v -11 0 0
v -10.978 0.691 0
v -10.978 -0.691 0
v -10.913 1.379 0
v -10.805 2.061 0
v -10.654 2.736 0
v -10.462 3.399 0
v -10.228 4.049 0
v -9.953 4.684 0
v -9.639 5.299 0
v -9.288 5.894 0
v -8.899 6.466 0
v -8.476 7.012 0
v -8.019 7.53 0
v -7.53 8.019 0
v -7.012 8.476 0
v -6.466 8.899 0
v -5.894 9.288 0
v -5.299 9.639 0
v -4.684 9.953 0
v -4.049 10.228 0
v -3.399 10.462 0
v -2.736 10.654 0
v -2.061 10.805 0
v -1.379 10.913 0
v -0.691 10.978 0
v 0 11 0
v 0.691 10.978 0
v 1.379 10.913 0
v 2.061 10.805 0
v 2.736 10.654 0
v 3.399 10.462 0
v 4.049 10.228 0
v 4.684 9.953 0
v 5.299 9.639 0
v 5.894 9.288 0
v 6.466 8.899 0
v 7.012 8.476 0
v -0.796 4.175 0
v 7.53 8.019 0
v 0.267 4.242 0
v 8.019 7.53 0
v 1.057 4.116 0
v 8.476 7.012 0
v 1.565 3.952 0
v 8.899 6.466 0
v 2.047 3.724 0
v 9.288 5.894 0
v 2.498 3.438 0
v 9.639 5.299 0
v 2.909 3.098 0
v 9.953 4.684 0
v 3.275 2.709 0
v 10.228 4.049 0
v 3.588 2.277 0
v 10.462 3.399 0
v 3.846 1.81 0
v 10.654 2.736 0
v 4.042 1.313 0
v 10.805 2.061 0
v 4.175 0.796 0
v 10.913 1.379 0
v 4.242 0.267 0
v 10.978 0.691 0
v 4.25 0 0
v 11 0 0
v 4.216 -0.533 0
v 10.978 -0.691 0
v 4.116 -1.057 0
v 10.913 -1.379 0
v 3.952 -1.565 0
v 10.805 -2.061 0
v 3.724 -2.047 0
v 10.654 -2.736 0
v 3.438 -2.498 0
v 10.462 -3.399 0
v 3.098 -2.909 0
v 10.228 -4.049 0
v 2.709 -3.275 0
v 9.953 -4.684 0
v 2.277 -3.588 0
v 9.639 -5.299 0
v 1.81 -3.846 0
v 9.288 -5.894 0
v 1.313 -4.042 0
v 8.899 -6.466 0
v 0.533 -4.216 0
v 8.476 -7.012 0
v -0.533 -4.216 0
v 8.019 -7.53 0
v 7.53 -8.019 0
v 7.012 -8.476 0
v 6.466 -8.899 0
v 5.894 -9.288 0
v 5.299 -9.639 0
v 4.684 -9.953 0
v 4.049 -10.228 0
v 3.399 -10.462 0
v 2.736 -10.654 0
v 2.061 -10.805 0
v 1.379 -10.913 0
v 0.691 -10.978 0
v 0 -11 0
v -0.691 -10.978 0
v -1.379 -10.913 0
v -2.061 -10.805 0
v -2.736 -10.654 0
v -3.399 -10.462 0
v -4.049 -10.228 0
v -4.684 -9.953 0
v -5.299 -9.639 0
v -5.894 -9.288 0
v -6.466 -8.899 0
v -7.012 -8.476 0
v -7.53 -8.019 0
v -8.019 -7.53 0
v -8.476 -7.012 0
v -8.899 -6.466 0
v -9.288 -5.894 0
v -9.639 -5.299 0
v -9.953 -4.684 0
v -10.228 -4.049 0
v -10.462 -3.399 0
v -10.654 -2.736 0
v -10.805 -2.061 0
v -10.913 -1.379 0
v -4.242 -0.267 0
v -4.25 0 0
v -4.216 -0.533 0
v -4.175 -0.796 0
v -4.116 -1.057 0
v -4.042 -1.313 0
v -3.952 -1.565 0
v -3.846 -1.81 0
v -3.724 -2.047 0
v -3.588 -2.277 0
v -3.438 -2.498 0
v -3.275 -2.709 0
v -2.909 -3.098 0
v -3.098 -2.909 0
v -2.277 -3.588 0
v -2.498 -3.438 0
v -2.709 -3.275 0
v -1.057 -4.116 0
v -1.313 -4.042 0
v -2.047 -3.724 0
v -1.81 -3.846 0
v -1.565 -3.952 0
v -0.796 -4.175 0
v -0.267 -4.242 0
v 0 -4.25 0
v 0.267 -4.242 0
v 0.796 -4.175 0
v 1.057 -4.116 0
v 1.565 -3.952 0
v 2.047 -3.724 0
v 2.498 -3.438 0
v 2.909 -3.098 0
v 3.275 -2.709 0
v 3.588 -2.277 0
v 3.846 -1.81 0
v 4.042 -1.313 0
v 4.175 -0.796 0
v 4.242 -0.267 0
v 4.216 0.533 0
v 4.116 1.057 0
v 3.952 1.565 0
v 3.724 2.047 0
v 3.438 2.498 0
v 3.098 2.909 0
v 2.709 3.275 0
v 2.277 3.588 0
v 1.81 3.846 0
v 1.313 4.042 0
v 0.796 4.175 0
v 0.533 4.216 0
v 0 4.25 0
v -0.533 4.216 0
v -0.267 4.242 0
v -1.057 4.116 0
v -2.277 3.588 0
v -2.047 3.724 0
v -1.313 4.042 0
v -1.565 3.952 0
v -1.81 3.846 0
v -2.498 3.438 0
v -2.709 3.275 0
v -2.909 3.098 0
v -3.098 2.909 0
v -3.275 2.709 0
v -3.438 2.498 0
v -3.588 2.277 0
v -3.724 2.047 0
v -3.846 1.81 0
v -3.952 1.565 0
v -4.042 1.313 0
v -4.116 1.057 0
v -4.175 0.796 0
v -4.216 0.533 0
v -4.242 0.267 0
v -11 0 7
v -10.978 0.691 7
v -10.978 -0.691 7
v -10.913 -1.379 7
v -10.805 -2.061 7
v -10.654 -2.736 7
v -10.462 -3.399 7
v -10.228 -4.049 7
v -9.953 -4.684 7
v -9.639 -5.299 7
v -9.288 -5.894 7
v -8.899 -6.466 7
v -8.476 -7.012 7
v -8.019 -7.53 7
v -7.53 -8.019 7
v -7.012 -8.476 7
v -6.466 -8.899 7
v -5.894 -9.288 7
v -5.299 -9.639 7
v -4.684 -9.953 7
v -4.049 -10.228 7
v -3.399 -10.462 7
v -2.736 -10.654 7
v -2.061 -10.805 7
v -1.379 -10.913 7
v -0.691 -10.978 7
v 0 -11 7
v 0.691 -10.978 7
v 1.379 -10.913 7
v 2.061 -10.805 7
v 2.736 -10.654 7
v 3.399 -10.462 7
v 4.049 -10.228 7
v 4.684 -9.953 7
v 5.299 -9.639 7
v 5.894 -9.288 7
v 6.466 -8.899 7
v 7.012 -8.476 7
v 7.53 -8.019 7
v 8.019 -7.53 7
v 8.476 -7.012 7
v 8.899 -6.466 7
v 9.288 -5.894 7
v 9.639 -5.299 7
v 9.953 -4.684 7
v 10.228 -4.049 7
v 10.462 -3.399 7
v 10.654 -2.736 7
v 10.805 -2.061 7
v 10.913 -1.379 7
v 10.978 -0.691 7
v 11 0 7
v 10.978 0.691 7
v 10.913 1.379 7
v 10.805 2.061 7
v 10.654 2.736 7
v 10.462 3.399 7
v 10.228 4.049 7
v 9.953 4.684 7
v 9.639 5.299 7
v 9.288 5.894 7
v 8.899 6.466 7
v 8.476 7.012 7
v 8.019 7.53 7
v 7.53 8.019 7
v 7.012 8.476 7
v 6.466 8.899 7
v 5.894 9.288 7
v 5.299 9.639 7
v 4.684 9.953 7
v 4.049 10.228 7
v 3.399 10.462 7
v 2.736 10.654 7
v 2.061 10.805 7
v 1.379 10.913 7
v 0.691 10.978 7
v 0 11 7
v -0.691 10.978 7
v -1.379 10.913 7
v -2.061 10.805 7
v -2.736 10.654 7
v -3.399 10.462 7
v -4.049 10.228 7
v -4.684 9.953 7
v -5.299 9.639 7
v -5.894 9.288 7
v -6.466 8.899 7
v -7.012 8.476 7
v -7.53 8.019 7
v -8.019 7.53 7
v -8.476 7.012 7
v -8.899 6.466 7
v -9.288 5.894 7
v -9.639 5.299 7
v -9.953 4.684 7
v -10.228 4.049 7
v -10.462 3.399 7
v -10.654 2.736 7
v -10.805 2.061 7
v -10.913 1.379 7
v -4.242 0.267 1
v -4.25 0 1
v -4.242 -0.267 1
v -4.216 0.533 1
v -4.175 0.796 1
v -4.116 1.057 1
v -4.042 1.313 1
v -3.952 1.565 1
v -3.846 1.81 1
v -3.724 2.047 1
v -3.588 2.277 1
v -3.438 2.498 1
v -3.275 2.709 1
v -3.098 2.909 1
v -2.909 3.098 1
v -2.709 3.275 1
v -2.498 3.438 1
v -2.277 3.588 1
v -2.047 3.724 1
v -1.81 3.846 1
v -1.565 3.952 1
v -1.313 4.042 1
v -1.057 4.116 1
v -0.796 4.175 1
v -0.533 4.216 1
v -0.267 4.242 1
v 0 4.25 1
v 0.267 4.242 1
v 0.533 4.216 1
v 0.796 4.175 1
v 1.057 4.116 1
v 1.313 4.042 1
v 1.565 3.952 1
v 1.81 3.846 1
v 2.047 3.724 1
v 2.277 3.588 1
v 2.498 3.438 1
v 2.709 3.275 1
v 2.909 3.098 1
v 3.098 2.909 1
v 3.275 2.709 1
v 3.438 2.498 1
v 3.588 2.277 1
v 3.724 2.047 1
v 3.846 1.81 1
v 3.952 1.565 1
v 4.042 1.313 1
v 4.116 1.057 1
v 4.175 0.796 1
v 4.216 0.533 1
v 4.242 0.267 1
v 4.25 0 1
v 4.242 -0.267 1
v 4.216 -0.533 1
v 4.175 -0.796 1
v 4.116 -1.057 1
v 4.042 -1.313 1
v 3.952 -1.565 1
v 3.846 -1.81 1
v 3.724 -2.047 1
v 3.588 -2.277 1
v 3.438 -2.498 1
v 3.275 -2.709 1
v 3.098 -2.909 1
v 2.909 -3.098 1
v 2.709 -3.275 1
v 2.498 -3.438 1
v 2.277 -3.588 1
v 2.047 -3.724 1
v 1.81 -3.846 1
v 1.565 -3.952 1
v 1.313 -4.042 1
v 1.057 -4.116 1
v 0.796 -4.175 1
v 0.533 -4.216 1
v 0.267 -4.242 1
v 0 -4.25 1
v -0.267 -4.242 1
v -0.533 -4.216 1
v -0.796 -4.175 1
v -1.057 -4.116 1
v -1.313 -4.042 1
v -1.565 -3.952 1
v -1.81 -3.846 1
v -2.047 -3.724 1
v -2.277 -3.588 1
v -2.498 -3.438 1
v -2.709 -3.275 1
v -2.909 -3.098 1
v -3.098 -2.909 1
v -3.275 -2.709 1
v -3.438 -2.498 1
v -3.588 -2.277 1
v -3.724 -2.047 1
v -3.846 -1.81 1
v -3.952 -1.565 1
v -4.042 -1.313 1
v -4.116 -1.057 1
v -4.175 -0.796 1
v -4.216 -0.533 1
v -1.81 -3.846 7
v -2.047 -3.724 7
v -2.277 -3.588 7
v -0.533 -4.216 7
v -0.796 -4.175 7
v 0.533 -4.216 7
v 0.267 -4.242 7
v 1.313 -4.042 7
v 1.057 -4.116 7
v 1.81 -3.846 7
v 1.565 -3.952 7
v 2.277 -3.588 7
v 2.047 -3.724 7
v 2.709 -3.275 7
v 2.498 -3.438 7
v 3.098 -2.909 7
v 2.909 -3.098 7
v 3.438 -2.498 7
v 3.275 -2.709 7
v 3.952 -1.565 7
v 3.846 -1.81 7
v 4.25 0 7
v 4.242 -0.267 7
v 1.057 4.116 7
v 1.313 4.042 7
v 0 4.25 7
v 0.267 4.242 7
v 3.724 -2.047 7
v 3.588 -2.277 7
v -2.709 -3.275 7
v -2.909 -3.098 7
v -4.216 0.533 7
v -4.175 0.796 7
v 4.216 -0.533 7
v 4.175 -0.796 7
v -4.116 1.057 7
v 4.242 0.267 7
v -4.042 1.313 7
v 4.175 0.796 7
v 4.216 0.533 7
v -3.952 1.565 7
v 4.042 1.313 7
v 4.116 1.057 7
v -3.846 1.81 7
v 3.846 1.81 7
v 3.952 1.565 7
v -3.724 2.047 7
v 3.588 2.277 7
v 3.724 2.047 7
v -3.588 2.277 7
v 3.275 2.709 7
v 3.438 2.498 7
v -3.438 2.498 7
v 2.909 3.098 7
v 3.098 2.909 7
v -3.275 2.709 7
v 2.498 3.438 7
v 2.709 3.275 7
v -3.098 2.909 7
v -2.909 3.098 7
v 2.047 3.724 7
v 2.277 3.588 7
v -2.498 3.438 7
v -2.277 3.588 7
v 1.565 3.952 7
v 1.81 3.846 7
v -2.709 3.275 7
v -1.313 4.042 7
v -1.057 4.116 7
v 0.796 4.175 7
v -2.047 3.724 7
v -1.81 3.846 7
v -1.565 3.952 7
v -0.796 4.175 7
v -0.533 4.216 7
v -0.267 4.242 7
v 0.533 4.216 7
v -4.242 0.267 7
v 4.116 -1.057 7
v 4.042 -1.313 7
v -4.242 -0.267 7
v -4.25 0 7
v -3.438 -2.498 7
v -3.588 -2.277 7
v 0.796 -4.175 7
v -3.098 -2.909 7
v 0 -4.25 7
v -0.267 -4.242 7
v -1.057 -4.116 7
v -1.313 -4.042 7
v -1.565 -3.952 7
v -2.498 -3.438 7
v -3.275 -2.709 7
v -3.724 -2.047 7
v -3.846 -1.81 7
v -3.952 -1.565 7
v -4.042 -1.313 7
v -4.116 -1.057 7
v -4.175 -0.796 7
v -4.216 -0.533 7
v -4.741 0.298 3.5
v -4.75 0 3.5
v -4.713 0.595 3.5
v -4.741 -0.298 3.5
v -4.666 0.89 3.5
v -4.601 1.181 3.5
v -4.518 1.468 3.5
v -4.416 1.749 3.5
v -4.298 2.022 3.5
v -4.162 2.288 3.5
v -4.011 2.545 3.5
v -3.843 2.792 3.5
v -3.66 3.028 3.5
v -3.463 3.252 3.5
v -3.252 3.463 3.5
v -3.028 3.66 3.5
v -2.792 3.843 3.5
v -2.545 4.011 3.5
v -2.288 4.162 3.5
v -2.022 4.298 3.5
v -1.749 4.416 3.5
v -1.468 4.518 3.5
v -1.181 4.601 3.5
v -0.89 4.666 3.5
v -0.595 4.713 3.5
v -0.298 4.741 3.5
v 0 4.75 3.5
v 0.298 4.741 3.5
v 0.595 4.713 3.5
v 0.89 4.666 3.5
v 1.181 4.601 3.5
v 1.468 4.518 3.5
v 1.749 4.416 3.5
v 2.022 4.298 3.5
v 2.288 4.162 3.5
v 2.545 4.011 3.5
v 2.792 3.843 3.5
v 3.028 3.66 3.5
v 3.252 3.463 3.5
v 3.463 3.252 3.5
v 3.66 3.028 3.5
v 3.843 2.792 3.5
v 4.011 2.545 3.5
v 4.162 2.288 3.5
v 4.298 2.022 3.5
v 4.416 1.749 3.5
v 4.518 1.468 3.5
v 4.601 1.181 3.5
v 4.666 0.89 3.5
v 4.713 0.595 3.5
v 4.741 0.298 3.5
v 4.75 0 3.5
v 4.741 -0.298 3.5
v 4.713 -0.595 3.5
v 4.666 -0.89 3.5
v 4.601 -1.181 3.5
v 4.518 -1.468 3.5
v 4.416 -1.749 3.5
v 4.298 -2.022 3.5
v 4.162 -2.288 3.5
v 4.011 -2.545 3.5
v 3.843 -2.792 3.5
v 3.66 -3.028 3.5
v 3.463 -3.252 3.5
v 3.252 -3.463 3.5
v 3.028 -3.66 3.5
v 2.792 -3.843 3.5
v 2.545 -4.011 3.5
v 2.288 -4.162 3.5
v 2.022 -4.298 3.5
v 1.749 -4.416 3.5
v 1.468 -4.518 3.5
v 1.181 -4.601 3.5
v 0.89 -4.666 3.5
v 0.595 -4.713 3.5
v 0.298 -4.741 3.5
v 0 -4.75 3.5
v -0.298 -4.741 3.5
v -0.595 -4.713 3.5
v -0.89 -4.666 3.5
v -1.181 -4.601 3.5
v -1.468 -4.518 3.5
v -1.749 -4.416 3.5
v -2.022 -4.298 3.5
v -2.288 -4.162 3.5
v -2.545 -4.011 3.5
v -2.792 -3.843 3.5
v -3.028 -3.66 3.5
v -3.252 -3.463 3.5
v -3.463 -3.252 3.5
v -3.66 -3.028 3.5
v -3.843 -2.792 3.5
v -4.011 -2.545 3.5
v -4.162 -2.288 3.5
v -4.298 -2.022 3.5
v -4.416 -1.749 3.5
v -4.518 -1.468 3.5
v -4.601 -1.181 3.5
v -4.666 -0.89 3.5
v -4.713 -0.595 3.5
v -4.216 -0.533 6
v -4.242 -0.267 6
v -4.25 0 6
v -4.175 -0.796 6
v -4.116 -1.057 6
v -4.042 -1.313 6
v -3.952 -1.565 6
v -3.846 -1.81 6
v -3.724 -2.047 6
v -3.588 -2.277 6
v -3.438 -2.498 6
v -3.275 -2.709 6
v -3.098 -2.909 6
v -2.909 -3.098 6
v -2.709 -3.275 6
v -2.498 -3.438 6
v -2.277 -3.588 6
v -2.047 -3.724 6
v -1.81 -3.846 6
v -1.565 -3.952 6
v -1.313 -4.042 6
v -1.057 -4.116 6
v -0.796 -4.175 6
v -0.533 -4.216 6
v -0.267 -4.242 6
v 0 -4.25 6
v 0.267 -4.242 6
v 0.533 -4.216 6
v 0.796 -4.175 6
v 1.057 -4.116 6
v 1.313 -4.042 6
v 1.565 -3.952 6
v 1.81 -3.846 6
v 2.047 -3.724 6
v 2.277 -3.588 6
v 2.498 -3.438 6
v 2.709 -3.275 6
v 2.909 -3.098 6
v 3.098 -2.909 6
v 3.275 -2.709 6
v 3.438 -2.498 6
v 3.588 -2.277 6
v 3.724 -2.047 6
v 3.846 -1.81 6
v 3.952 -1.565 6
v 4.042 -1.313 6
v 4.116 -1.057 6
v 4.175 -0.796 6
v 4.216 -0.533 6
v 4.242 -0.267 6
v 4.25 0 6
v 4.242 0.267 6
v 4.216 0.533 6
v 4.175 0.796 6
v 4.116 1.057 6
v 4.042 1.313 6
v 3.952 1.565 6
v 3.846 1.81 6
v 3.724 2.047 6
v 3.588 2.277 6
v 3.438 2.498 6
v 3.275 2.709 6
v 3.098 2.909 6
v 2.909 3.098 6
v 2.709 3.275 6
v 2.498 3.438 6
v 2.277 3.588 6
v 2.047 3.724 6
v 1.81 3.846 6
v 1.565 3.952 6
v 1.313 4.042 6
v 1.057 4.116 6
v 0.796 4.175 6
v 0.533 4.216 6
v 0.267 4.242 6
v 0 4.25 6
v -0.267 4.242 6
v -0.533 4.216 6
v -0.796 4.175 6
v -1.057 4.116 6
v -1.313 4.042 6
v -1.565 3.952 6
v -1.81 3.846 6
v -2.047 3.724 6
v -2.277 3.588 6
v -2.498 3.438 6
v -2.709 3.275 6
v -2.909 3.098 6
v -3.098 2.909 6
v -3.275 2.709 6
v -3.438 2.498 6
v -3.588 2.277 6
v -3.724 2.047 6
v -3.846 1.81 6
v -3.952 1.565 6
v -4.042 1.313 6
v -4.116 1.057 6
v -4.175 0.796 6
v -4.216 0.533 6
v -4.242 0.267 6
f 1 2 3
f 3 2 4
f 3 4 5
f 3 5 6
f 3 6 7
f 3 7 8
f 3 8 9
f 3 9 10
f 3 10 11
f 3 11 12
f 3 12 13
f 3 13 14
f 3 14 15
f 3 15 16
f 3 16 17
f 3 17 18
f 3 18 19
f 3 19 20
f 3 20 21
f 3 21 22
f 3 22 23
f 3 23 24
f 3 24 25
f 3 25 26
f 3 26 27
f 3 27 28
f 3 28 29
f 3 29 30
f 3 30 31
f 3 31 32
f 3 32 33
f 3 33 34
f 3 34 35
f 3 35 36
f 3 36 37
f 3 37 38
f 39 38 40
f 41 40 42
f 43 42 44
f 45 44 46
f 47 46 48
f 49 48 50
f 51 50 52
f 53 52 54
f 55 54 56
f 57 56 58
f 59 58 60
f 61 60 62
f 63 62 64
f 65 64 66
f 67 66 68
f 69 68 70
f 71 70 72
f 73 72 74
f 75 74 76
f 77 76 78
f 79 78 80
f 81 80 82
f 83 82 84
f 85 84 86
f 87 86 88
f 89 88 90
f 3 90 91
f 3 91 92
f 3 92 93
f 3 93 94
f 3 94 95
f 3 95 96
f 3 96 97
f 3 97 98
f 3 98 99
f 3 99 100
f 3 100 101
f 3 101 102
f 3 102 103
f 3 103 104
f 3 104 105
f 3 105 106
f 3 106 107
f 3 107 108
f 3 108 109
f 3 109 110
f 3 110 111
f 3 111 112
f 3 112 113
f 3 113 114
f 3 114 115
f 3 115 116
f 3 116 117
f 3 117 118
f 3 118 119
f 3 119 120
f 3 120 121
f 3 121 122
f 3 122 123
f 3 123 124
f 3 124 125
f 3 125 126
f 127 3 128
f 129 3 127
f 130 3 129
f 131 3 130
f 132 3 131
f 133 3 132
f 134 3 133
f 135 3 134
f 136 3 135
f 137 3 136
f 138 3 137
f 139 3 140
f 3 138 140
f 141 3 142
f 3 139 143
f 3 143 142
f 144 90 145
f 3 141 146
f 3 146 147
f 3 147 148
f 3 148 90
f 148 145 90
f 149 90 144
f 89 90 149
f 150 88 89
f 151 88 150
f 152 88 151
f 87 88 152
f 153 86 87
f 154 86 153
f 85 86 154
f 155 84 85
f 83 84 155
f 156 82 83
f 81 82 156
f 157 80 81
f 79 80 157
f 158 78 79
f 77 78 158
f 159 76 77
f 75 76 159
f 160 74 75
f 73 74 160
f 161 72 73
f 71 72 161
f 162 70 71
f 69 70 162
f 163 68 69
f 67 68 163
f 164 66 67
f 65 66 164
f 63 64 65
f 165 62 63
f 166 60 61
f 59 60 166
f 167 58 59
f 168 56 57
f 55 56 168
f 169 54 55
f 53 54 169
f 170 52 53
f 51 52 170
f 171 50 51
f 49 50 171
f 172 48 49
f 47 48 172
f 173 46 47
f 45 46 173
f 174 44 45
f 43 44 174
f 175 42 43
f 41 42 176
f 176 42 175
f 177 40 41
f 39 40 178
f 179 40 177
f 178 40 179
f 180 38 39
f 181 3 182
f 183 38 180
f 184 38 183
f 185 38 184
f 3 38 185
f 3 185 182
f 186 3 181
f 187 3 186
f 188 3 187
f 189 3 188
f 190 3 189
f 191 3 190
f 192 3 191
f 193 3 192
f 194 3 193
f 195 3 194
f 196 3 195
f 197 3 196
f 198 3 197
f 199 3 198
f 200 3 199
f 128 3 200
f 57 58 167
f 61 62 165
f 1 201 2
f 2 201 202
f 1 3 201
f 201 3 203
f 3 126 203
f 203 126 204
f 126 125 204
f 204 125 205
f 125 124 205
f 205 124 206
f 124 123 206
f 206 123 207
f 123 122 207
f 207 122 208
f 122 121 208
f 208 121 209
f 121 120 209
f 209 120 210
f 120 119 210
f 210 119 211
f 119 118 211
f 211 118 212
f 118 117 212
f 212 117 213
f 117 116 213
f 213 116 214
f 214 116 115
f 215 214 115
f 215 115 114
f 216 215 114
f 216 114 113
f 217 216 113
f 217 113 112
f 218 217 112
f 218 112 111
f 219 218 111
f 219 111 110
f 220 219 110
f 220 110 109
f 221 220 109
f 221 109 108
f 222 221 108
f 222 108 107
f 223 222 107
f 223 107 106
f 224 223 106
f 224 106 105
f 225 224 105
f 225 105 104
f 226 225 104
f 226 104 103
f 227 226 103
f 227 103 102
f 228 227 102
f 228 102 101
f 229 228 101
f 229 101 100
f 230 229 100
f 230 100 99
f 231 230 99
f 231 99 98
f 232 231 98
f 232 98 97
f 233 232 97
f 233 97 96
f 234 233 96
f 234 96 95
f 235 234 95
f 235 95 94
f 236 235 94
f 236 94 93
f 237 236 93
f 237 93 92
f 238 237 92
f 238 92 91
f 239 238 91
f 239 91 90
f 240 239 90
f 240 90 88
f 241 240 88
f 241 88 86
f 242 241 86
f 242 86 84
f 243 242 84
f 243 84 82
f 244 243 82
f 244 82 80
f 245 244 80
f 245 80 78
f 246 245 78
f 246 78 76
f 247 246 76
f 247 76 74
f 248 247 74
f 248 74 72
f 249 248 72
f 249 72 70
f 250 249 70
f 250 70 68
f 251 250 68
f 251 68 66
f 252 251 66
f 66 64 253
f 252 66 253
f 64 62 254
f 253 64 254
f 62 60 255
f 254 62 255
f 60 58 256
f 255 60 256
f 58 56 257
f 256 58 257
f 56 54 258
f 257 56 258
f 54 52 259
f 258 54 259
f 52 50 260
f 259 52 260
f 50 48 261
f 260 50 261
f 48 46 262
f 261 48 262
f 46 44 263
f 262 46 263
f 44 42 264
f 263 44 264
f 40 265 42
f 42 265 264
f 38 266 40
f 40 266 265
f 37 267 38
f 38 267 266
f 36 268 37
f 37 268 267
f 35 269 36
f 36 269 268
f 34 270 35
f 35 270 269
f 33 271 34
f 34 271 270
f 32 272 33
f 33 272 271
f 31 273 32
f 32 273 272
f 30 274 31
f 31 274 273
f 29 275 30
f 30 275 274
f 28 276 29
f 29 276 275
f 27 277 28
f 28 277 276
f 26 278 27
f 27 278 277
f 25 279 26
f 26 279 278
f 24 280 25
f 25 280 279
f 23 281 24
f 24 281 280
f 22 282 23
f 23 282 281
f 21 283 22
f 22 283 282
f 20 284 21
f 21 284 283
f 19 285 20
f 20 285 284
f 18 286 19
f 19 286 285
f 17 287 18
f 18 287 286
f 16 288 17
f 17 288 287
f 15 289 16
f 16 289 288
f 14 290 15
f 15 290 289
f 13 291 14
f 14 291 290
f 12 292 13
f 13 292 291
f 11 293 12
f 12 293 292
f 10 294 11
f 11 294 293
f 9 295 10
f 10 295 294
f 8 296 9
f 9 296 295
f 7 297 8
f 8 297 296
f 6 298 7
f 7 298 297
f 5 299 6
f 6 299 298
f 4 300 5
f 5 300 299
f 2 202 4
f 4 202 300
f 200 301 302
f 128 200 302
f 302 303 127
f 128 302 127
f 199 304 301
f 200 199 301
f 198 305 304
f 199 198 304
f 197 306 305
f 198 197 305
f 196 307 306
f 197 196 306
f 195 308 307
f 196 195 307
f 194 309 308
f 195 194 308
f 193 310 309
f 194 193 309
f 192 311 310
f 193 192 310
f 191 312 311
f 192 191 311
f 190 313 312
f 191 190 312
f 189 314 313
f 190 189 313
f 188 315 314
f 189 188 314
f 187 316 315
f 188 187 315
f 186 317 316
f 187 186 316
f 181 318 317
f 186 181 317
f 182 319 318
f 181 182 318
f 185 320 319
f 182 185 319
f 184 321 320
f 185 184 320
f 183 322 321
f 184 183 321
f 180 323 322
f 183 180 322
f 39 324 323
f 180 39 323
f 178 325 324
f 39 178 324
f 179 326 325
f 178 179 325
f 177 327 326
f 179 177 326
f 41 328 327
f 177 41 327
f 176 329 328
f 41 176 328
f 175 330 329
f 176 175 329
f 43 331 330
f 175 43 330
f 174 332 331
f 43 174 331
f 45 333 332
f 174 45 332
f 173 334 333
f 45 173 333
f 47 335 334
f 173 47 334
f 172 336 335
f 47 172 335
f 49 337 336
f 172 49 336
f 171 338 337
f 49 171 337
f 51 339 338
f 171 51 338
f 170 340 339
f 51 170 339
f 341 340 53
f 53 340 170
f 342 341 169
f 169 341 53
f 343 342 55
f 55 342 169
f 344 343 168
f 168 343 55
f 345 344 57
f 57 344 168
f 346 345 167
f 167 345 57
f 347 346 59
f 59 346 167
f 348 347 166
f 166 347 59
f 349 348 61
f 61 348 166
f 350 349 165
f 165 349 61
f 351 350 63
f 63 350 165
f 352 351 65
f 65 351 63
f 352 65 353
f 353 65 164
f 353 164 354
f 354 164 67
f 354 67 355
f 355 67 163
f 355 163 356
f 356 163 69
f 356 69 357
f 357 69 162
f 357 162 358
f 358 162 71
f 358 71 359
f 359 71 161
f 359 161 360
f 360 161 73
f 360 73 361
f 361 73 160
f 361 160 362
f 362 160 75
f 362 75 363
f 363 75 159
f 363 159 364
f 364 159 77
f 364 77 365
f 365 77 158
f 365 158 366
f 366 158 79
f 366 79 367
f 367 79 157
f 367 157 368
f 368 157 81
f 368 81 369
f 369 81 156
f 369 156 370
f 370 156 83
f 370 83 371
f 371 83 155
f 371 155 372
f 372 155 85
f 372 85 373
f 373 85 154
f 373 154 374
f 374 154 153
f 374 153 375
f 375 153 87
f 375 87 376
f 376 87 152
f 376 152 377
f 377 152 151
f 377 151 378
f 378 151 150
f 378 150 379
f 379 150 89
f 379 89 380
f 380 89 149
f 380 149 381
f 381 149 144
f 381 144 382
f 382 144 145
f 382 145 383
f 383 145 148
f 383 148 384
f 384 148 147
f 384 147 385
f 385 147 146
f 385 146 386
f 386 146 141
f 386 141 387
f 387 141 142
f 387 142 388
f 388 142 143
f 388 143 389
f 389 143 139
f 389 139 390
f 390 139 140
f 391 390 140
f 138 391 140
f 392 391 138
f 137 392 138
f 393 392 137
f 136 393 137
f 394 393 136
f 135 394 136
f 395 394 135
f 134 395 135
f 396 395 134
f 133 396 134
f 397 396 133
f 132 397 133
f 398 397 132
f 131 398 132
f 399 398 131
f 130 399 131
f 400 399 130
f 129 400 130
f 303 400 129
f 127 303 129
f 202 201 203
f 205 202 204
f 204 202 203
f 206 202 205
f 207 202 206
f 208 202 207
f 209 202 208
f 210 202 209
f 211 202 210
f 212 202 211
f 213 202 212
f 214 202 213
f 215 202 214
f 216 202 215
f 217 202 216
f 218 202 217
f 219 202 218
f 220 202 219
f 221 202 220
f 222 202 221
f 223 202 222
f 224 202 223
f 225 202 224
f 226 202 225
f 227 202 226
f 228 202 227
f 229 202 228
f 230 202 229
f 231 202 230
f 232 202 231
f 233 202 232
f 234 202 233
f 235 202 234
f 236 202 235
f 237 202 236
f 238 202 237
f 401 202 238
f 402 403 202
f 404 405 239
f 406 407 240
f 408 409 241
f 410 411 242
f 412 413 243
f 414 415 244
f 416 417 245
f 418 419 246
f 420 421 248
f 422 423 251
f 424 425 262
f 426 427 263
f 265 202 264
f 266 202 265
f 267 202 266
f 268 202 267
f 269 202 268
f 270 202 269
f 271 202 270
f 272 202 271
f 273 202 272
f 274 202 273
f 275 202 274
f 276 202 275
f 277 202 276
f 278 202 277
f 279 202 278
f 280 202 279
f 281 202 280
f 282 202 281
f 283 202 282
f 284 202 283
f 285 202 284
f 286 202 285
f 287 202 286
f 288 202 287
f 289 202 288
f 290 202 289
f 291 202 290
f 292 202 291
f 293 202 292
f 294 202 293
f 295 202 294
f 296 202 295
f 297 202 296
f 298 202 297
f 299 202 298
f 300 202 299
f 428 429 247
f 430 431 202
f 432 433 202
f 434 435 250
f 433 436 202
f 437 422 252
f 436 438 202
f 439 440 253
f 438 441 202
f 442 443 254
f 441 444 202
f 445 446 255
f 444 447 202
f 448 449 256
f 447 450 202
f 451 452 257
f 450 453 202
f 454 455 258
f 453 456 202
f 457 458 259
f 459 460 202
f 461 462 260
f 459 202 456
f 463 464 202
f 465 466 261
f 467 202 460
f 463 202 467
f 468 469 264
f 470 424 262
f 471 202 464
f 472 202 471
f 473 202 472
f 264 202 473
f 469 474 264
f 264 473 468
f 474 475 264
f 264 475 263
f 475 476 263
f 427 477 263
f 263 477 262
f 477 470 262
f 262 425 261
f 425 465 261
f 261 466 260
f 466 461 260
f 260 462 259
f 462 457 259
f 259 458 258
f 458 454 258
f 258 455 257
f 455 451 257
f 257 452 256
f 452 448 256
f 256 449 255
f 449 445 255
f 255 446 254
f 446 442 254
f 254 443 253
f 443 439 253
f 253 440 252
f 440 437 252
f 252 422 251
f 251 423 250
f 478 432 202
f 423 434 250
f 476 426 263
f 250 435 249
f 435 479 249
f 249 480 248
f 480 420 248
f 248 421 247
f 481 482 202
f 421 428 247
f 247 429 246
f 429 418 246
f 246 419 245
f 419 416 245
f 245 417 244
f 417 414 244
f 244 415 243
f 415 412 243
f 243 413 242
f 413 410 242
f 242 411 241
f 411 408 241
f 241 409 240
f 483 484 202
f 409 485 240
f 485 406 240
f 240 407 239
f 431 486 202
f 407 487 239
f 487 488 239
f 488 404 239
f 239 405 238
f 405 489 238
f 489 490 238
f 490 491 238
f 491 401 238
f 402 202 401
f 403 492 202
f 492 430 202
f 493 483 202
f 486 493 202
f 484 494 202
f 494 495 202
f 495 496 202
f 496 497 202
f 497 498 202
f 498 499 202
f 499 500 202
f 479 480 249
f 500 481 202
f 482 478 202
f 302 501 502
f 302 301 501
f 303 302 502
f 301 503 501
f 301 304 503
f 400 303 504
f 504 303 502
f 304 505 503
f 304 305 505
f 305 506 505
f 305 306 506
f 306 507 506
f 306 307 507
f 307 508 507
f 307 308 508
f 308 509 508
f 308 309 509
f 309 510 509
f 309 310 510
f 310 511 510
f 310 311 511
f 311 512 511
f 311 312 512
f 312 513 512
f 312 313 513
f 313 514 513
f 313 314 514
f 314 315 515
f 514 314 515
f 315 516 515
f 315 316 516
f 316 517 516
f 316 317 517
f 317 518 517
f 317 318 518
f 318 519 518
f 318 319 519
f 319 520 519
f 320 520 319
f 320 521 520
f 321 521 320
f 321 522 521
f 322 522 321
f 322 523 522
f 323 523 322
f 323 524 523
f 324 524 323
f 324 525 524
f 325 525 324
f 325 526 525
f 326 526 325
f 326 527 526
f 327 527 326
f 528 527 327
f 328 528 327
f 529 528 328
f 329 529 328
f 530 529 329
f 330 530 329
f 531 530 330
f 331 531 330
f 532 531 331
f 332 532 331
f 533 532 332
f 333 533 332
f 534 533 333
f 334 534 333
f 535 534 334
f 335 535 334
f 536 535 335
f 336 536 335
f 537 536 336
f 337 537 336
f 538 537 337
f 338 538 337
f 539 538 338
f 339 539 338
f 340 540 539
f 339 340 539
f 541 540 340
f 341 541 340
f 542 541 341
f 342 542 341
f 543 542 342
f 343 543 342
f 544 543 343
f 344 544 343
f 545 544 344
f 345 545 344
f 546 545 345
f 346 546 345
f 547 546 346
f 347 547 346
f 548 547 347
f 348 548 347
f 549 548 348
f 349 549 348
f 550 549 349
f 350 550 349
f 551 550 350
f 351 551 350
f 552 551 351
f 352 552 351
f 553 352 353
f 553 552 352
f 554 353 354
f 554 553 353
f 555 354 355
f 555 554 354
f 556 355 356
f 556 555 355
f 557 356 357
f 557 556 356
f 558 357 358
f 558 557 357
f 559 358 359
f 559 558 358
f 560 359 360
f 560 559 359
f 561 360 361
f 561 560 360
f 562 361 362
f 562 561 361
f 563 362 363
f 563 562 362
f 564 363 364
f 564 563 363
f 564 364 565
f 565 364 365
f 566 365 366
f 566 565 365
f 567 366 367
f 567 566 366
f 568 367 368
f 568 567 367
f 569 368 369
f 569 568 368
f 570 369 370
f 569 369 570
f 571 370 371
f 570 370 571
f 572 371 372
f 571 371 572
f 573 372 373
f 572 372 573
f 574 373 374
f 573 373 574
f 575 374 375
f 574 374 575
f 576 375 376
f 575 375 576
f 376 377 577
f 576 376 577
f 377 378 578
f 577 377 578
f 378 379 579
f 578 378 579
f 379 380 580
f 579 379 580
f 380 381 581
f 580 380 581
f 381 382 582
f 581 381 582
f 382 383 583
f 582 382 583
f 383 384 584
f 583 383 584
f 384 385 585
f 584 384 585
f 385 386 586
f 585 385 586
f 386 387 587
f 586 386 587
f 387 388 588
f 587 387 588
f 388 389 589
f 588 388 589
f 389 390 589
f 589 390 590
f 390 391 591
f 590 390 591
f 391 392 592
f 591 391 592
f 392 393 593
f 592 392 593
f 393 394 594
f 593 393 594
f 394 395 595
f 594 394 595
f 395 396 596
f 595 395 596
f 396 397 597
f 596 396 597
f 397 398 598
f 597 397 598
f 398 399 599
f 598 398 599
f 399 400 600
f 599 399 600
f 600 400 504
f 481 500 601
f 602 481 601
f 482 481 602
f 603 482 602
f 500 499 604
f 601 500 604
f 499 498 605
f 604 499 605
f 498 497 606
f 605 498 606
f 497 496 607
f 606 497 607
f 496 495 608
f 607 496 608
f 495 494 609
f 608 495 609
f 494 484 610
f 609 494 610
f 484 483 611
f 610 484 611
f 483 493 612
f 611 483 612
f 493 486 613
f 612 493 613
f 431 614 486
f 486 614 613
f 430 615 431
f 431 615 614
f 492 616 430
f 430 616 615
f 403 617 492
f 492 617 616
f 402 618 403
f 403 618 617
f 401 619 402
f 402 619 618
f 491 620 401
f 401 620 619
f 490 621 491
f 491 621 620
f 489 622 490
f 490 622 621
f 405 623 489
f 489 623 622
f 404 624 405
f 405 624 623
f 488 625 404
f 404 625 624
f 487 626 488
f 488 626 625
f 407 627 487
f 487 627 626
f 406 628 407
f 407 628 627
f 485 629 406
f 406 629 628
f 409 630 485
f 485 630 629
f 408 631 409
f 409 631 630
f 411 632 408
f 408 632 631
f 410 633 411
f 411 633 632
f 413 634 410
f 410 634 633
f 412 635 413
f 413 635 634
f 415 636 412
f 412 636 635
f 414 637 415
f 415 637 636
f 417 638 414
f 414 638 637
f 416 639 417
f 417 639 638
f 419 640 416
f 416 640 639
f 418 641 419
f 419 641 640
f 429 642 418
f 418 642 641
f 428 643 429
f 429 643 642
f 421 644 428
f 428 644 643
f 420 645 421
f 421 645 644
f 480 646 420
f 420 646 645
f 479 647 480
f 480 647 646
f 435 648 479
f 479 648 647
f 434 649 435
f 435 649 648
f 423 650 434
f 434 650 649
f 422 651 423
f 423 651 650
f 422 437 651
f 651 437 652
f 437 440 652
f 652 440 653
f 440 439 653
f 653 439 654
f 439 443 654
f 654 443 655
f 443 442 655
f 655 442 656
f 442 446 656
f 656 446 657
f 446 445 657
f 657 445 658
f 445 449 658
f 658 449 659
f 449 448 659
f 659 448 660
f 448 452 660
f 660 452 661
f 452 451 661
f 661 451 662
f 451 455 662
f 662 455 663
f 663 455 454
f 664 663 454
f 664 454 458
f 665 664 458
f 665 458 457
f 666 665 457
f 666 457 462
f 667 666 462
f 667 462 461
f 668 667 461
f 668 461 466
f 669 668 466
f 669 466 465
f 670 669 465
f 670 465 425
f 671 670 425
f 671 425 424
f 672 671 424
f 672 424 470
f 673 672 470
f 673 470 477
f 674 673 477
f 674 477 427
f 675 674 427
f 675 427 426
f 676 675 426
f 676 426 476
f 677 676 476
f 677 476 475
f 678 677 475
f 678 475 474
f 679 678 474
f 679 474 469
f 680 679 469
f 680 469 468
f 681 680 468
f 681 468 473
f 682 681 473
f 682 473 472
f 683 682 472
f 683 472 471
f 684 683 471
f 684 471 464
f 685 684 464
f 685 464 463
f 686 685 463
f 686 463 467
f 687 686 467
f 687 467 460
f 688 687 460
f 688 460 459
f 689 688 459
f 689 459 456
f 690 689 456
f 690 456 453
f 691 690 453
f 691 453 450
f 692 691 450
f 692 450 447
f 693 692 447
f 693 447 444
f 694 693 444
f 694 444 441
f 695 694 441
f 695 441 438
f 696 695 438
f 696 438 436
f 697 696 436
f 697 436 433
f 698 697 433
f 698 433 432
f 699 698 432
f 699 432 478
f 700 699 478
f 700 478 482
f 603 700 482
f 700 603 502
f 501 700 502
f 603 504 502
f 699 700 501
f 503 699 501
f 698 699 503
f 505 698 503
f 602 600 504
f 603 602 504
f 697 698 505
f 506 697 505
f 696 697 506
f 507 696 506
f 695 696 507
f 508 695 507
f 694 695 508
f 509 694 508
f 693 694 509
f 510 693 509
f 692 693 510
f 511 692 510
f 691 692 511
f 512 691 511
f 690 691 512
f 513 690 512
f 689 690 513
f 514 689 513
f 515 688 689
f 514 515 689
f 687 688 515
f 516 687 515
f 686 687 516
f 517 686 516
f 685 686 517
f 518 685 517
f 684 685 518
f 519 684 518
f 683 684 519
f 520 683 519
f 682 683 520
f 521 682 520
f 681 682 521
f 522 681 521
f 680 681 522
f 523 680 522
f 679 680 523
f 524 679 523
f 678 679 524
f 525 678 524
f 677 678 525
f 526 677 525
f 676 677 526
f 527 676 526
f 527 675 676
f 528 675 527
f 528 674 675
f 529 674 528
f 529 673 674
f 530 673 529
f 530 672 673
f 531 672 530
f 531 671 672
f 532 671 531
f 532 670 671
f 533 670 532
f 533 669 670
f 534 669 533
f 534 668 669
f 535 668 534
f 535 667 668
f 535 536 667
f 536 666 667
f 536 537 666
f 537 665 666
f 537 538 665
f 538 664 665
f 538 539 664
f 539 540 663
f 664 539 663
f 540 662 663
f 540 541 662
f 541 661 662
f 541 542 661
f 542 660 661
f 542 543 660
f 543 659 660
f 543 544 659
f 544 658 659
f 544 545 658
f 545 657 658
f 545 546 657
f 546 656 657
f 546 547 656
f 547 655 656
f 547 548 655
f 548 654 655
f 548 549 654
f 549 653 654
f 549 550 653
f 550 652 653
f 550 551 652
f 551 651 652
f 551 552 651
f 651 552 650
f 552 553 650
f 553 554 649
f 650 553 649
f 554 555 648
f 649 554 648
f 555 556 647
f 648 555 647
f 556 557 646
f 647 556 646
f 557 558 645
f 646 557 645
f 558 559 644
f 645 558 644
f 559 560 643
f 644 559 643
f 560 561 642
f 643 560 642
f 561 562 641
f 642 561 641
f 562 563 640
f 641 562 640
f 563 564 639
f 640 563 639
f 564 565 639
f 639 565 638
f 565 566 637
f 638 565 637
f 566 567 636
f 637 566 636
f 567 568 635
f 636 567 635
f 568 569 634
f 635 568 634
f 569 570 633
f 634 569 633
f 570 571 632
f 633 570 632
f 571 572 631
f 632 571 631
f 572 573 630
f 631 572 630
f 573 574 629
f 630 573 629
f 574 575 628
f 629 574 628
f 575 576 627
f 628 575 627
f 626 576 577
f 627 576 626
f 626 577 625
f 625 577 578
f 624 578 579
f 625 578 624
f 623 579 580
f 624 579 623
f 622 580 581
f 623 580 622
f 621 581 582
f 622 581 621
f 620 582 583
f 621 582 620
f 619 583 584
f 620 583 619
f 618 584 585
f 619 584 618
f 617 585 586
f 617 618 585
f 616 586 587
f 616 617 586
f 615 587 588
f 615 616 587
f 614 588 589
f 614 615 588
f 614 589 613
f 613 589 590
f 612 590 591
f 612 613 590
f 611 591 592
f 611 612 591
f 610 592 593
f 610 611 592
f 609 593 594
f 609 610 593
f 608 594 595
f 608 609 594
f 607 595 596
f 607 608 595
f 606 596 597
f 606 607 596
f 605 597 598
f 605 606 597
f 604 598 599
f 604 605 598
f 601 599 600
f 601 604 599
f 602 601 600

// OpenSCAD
// roller to replace/simulate 608 bearings, last modified 2014-03-28
// when the bore is cleaned up, it must be a loose rolling fit on a pin which
//   would fit the 8.00mm bore in a 608 bearing, i.e. about an 8.00mm plastic pin
// roller bore diameter experimentally determined, adjust for your printer/filament,
//   temperature, layer thickness, number of shells, fill percentage, etc.
// roller width could be adjusted to simulate a wider or double bearing

$fn=100;                 // set circle approximations to be very smooth

// define sizing of the roller

borediameter=8.50;       // bore diameter, larger than 608 bearing, empirical value
br=borediameter/2;       // bore radius
bx=br+.5;                // expanded bore radius, outside of two "bearing surfaces"

rw=7.00;                 // roller width     (7mm to simulate 608 bearing)
rd=22.0;                 // roller diameter (22mm to simulate 608 bearing)
rr=rd/2;                 // roller radius
xw=1;                    // widths of two inner "bearing surfaces" within the bore

// define heights and elevations of components of the roller bore
// in order: "bearing surface" / tapered areas / "bearing surface"

z1=0;     h1=xw;
z2=z1+h1; h2=(rw-(2*xw))/2;
z3=z2+h2; h3=h2;
z4=z3+h3; h4=h1;

// stack up the voids within the roller

module voids()
 {
  translate([0,0,z1-.01]) cylinder(h=h1+.01,r=br);
  translate([0,0,z2])     cylinder(h=h2,r1=br,r2=bx);
  translate([0,0,z3])     cylinder(h=h3,r1=bx,r2=br);
  translate([0,0,z4])     cylinder(h=h4+.01,r=br);    
 }

// create the roller

difference() {cylinder(h=rw,r=rr); voids();}
